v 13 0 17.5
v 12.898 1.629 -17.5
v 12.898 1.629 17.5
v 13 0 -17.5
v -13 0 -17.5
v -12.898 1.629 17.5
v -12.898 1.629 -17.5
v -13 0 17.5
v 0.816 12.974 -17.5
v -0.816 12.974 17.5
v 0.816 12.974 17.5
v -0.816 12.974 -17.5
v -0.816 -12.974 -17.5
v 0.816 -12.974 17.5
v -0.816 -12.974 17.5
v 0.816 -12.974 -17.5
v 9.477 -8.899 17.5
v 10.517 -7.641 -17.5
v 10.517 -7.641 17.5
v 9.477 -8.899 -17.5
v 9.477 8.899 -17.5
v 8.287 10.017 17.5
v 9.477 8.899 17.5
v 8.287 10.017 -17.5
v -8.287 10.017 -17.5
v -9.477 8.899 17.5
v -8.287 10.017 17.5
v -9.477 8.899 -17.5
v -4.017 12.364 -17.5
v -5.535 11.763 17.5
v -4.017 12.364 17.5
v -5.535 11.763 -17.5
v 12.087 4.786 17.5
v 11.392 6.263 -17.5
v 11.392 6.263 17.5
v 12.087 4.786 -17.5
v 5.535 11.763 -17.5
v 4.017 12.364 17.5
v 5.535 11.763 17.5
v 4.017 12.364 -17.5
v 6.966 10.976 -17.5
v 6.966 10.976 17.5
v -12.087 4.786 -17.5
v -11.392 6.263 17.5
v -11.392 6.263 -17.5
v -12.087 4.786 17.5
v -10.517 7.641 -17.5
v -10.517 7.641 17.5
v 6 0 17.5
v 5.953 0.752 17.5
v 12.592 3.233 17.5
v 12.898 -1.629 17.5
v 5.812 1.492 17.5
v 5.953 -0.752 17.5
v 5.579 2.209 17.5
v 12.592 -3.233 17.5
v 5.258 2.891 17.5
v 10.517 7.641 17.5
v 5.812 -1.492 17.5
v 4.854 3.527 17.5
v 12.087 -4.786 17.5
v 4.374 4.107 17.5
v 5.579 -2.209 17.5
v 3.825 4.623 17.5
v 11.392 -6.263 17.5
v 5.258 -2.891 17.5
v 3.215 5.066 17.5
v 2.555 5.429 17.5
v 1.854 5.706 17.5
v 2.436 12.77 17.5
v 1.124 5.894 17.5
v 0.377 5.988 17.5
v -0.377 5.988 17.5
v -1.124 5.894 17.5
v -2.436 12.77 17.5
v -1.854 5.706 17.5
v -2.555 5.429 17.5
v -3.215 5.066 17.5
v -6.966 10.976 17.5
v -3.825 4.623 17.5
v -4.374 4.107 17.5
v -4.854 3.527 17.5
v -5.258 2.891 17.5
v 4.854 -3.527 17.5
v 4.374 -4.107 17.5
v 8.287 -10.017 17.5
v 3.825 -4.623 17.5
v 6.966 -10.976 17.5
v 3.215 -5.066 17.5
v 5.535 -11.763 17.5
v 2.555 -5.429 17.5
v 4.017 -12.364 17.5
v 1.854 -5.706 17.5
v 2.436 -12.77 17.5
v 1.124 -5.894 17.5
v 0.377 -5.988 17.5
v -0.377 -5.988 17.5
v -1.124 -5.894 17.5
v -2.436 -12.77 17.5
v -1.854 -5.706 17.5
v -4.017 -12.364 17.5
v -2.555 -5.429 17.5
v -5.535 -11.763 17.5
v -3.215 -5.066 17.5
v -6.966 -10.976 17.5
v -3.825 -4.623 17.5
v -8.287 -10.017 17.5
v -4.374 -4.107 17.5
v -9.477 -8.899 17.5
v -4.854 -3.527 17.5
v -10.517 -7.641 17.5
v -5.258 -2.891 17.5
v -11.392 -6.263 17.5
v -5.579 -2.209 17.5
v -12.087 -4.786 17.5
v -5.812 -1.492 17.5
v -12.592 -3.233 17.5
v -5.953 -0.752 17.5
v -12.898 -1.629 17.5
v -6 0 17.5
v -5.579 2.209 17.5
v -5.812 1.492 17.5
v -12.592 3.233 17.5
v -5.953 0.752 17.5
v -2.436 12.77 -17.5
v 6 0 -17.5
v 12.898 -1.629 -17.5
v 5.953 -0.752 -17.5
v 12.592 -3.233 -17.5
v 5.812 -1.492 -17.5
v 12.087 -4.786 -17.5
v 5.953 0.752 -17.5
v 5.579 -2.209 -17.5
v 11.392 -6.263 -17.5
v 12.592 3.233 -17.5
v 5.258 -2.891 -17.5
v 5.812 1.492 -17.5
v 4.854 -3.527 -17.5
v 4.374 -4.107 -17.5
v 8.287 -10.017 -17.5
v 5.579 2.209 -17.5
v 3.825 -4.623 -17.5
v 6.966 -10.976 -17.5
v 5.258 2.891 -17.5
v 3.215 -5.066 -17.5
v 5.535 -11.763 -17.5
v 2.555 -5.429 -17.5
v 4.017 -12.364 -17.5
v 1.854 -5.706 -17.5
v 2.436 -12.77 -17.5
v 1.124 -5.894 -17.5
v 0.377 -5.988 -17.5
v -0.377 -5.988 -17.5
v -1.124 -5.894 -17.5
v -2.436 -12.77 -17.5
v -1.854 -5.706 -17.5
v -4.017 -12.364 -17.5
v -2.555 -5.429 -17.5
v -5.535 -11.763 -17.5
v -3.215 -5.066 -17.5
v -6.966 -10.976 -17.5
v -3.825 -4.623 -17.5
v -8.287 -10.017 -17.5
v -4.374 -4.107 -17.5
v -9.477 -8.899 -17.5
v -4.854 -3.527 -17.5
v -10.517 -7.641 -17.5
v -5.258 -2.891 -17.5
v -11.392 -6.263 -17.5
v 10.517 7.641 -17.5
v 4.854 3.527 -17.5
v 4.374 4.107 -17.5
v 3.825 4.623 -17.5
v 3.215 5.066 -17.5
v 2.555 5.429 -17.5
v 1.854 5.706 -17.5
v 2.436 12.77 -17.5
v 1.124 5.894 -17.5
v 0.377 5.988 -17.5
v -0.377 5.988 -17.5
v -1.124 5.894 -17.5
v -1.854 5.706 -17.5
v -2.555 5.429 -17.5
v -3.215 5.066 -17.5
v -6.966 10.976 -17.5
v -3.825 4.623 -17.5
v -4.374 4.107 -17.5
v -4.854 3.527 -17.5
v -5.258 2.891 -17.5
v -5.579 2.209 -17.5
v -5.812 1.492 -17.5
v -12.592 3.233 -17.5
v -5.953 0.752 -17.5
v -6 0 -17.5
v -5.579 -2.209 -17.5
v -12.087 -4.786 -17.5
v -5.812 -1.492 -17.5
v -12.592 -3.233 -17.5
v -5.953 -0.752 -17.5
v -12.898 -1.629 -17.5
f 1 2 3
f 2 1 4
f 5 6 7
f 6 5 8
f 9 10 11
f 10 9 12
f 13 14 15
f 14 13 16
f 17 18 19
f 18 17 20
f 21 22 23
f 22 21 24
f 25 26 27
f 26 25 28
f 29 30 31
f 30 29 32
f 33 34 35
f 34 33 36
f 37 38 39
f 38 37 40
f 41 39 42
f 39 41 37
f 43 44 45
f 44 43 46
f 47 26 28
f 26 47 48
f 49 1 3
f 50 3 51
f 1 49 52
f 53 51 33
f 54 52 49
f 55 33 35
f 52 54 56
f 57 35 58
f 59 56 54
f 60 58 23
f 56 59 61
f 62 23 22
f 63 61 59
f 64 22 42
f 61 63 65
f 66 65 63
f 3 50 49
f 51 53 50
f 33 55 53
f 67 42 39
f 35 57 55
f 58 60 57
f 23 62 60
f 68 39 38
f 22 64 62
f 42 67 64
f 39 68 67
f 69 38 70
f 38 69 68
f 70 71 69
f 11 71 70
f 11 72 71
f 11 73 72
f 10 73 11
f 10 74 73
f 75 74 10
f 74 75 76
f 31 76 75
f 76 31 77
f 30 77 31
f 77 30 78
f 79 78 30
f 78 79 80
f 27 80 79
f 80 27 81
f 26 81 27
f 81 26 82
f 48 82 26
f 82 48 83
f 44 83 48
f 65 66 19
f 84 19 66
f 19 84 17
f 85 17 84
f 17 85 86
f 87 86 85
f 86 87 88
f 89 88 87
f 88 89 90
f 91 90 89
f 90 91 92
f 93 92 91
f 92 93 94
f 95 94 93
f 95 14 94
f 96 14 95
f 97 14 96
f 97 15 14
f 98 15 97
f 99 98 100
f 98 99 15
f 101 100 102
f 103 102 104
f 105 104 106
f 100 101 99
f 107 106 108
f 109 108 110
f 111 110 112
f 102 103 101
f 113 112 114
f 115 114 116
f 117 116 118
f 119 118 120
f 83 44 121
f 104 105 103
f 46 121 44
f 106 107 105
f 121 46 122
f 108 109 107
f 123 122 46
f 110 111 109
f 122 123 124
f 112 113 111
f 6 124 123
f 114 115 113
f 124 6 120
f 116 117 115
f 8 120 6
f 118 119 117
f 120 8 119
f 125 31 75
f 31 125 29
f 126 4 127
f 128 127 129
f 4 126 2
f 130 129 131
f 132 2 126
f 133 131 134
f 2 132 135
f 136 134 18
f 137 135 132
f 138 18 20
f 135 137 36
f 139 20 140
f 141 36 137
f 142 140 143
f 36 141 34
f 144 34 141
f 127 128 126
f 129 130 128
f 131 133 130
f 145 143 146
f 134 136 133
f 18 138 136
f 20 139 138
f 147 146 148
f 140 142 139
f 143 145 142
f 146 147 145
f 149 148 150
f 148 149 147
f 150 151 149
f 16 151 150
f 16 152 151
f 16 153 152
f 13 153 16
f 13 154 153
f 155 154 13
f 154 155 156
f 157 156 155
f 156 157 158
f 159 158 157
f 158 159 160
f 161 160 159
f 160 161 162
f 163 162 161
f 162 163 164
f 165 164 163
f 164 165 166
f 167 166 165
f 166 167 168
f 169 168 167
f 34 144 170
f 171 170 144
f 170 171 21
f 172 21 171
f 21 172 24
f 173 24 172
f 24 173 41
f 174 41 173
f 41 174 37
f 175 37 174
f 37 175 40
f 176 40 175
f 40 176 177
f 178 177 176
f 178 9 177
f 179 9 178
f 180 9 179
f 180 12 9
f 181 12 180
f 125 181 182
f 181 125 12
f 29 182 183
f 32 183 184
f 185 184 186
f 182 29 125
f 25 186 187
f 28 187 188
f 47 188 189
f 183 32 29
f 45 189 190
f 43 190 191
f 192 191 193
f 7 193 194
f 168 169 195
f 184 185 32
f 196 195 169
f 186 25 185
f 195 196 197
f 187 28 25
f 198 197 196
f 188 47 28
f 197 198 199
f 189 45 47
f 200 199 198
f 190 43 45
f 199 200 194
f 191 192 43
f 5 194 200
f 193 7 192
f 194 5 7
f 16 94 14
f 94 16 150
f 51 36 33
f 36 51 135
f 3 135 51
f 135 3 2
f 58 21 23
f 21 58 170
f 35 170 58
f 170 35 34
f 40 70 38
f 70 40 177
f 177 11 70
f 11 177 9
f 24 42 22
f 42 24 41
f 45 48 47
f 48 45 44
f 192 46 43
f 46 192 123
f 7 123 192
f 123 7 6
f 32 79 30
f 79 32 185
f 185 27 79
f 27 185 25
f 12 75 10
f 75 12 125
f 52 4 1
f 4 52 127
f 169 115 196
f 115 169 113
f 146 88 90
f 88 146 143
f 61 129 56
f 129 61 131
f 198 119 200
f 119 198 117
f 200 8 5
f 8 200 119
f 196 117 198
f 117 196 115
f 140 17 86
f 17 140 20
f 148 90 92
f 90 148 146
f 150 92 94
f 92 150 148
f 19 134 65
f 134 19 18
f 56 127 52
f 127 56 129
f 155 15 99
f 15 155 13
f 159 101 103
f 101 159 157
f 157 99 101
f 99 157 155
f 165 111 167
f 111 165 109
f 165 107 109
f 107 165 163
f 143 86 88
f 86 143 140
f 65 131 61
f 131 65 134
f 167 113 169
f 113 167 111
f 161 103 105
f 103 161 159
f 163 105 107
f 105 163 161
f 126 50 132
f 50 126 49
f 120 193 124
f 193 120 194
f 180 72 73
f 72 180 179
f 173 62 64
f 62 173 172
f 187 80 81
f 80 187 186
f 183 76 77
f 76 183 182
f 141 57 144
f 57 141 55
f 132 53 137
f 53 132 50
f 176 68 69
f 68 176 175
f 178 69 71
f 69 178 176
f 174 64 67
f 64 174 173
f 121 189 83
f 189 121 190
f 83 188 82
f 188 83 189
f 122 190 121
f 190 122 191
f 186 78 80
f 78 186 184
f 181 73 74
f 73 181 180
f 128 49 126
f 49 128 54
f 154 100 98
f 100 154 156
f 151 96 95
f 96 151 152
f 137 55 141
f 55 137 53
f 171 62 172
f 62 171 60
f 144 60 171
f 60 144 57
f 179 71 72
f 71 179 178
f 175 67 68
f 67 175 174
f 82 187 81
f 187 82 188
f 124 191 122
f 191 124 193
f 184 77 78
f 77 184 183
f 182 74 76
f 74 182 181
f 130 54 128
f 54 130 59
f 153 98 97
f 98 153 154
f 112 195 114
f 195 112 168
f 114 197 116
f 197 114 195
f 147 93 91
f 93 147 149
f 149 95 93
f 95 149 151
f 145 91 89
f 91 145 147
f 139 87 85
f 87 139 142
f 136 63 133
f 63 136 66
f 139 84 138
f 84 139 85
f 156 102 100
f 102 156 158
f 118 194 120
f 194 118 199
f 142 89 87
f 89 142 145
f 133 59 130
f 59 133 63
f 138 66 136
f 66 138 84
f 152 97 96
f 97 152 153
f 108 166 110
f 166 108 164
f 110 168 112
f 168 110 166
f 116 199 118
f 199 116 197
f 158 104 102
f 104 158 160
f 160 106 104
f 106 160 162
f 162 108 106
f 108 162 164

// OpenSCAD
$fn = 50;


difference() {
	union() {
		translate(v = [0, 0, -17.5000000000]) {
			cylinder(h = 35, r = 13.0000000000);
		}
	}
	union() {
		translate(v = [0, 0, -100.0000000000]) {
			cylinder(h = 200, r = 6);
		}
	}
}
